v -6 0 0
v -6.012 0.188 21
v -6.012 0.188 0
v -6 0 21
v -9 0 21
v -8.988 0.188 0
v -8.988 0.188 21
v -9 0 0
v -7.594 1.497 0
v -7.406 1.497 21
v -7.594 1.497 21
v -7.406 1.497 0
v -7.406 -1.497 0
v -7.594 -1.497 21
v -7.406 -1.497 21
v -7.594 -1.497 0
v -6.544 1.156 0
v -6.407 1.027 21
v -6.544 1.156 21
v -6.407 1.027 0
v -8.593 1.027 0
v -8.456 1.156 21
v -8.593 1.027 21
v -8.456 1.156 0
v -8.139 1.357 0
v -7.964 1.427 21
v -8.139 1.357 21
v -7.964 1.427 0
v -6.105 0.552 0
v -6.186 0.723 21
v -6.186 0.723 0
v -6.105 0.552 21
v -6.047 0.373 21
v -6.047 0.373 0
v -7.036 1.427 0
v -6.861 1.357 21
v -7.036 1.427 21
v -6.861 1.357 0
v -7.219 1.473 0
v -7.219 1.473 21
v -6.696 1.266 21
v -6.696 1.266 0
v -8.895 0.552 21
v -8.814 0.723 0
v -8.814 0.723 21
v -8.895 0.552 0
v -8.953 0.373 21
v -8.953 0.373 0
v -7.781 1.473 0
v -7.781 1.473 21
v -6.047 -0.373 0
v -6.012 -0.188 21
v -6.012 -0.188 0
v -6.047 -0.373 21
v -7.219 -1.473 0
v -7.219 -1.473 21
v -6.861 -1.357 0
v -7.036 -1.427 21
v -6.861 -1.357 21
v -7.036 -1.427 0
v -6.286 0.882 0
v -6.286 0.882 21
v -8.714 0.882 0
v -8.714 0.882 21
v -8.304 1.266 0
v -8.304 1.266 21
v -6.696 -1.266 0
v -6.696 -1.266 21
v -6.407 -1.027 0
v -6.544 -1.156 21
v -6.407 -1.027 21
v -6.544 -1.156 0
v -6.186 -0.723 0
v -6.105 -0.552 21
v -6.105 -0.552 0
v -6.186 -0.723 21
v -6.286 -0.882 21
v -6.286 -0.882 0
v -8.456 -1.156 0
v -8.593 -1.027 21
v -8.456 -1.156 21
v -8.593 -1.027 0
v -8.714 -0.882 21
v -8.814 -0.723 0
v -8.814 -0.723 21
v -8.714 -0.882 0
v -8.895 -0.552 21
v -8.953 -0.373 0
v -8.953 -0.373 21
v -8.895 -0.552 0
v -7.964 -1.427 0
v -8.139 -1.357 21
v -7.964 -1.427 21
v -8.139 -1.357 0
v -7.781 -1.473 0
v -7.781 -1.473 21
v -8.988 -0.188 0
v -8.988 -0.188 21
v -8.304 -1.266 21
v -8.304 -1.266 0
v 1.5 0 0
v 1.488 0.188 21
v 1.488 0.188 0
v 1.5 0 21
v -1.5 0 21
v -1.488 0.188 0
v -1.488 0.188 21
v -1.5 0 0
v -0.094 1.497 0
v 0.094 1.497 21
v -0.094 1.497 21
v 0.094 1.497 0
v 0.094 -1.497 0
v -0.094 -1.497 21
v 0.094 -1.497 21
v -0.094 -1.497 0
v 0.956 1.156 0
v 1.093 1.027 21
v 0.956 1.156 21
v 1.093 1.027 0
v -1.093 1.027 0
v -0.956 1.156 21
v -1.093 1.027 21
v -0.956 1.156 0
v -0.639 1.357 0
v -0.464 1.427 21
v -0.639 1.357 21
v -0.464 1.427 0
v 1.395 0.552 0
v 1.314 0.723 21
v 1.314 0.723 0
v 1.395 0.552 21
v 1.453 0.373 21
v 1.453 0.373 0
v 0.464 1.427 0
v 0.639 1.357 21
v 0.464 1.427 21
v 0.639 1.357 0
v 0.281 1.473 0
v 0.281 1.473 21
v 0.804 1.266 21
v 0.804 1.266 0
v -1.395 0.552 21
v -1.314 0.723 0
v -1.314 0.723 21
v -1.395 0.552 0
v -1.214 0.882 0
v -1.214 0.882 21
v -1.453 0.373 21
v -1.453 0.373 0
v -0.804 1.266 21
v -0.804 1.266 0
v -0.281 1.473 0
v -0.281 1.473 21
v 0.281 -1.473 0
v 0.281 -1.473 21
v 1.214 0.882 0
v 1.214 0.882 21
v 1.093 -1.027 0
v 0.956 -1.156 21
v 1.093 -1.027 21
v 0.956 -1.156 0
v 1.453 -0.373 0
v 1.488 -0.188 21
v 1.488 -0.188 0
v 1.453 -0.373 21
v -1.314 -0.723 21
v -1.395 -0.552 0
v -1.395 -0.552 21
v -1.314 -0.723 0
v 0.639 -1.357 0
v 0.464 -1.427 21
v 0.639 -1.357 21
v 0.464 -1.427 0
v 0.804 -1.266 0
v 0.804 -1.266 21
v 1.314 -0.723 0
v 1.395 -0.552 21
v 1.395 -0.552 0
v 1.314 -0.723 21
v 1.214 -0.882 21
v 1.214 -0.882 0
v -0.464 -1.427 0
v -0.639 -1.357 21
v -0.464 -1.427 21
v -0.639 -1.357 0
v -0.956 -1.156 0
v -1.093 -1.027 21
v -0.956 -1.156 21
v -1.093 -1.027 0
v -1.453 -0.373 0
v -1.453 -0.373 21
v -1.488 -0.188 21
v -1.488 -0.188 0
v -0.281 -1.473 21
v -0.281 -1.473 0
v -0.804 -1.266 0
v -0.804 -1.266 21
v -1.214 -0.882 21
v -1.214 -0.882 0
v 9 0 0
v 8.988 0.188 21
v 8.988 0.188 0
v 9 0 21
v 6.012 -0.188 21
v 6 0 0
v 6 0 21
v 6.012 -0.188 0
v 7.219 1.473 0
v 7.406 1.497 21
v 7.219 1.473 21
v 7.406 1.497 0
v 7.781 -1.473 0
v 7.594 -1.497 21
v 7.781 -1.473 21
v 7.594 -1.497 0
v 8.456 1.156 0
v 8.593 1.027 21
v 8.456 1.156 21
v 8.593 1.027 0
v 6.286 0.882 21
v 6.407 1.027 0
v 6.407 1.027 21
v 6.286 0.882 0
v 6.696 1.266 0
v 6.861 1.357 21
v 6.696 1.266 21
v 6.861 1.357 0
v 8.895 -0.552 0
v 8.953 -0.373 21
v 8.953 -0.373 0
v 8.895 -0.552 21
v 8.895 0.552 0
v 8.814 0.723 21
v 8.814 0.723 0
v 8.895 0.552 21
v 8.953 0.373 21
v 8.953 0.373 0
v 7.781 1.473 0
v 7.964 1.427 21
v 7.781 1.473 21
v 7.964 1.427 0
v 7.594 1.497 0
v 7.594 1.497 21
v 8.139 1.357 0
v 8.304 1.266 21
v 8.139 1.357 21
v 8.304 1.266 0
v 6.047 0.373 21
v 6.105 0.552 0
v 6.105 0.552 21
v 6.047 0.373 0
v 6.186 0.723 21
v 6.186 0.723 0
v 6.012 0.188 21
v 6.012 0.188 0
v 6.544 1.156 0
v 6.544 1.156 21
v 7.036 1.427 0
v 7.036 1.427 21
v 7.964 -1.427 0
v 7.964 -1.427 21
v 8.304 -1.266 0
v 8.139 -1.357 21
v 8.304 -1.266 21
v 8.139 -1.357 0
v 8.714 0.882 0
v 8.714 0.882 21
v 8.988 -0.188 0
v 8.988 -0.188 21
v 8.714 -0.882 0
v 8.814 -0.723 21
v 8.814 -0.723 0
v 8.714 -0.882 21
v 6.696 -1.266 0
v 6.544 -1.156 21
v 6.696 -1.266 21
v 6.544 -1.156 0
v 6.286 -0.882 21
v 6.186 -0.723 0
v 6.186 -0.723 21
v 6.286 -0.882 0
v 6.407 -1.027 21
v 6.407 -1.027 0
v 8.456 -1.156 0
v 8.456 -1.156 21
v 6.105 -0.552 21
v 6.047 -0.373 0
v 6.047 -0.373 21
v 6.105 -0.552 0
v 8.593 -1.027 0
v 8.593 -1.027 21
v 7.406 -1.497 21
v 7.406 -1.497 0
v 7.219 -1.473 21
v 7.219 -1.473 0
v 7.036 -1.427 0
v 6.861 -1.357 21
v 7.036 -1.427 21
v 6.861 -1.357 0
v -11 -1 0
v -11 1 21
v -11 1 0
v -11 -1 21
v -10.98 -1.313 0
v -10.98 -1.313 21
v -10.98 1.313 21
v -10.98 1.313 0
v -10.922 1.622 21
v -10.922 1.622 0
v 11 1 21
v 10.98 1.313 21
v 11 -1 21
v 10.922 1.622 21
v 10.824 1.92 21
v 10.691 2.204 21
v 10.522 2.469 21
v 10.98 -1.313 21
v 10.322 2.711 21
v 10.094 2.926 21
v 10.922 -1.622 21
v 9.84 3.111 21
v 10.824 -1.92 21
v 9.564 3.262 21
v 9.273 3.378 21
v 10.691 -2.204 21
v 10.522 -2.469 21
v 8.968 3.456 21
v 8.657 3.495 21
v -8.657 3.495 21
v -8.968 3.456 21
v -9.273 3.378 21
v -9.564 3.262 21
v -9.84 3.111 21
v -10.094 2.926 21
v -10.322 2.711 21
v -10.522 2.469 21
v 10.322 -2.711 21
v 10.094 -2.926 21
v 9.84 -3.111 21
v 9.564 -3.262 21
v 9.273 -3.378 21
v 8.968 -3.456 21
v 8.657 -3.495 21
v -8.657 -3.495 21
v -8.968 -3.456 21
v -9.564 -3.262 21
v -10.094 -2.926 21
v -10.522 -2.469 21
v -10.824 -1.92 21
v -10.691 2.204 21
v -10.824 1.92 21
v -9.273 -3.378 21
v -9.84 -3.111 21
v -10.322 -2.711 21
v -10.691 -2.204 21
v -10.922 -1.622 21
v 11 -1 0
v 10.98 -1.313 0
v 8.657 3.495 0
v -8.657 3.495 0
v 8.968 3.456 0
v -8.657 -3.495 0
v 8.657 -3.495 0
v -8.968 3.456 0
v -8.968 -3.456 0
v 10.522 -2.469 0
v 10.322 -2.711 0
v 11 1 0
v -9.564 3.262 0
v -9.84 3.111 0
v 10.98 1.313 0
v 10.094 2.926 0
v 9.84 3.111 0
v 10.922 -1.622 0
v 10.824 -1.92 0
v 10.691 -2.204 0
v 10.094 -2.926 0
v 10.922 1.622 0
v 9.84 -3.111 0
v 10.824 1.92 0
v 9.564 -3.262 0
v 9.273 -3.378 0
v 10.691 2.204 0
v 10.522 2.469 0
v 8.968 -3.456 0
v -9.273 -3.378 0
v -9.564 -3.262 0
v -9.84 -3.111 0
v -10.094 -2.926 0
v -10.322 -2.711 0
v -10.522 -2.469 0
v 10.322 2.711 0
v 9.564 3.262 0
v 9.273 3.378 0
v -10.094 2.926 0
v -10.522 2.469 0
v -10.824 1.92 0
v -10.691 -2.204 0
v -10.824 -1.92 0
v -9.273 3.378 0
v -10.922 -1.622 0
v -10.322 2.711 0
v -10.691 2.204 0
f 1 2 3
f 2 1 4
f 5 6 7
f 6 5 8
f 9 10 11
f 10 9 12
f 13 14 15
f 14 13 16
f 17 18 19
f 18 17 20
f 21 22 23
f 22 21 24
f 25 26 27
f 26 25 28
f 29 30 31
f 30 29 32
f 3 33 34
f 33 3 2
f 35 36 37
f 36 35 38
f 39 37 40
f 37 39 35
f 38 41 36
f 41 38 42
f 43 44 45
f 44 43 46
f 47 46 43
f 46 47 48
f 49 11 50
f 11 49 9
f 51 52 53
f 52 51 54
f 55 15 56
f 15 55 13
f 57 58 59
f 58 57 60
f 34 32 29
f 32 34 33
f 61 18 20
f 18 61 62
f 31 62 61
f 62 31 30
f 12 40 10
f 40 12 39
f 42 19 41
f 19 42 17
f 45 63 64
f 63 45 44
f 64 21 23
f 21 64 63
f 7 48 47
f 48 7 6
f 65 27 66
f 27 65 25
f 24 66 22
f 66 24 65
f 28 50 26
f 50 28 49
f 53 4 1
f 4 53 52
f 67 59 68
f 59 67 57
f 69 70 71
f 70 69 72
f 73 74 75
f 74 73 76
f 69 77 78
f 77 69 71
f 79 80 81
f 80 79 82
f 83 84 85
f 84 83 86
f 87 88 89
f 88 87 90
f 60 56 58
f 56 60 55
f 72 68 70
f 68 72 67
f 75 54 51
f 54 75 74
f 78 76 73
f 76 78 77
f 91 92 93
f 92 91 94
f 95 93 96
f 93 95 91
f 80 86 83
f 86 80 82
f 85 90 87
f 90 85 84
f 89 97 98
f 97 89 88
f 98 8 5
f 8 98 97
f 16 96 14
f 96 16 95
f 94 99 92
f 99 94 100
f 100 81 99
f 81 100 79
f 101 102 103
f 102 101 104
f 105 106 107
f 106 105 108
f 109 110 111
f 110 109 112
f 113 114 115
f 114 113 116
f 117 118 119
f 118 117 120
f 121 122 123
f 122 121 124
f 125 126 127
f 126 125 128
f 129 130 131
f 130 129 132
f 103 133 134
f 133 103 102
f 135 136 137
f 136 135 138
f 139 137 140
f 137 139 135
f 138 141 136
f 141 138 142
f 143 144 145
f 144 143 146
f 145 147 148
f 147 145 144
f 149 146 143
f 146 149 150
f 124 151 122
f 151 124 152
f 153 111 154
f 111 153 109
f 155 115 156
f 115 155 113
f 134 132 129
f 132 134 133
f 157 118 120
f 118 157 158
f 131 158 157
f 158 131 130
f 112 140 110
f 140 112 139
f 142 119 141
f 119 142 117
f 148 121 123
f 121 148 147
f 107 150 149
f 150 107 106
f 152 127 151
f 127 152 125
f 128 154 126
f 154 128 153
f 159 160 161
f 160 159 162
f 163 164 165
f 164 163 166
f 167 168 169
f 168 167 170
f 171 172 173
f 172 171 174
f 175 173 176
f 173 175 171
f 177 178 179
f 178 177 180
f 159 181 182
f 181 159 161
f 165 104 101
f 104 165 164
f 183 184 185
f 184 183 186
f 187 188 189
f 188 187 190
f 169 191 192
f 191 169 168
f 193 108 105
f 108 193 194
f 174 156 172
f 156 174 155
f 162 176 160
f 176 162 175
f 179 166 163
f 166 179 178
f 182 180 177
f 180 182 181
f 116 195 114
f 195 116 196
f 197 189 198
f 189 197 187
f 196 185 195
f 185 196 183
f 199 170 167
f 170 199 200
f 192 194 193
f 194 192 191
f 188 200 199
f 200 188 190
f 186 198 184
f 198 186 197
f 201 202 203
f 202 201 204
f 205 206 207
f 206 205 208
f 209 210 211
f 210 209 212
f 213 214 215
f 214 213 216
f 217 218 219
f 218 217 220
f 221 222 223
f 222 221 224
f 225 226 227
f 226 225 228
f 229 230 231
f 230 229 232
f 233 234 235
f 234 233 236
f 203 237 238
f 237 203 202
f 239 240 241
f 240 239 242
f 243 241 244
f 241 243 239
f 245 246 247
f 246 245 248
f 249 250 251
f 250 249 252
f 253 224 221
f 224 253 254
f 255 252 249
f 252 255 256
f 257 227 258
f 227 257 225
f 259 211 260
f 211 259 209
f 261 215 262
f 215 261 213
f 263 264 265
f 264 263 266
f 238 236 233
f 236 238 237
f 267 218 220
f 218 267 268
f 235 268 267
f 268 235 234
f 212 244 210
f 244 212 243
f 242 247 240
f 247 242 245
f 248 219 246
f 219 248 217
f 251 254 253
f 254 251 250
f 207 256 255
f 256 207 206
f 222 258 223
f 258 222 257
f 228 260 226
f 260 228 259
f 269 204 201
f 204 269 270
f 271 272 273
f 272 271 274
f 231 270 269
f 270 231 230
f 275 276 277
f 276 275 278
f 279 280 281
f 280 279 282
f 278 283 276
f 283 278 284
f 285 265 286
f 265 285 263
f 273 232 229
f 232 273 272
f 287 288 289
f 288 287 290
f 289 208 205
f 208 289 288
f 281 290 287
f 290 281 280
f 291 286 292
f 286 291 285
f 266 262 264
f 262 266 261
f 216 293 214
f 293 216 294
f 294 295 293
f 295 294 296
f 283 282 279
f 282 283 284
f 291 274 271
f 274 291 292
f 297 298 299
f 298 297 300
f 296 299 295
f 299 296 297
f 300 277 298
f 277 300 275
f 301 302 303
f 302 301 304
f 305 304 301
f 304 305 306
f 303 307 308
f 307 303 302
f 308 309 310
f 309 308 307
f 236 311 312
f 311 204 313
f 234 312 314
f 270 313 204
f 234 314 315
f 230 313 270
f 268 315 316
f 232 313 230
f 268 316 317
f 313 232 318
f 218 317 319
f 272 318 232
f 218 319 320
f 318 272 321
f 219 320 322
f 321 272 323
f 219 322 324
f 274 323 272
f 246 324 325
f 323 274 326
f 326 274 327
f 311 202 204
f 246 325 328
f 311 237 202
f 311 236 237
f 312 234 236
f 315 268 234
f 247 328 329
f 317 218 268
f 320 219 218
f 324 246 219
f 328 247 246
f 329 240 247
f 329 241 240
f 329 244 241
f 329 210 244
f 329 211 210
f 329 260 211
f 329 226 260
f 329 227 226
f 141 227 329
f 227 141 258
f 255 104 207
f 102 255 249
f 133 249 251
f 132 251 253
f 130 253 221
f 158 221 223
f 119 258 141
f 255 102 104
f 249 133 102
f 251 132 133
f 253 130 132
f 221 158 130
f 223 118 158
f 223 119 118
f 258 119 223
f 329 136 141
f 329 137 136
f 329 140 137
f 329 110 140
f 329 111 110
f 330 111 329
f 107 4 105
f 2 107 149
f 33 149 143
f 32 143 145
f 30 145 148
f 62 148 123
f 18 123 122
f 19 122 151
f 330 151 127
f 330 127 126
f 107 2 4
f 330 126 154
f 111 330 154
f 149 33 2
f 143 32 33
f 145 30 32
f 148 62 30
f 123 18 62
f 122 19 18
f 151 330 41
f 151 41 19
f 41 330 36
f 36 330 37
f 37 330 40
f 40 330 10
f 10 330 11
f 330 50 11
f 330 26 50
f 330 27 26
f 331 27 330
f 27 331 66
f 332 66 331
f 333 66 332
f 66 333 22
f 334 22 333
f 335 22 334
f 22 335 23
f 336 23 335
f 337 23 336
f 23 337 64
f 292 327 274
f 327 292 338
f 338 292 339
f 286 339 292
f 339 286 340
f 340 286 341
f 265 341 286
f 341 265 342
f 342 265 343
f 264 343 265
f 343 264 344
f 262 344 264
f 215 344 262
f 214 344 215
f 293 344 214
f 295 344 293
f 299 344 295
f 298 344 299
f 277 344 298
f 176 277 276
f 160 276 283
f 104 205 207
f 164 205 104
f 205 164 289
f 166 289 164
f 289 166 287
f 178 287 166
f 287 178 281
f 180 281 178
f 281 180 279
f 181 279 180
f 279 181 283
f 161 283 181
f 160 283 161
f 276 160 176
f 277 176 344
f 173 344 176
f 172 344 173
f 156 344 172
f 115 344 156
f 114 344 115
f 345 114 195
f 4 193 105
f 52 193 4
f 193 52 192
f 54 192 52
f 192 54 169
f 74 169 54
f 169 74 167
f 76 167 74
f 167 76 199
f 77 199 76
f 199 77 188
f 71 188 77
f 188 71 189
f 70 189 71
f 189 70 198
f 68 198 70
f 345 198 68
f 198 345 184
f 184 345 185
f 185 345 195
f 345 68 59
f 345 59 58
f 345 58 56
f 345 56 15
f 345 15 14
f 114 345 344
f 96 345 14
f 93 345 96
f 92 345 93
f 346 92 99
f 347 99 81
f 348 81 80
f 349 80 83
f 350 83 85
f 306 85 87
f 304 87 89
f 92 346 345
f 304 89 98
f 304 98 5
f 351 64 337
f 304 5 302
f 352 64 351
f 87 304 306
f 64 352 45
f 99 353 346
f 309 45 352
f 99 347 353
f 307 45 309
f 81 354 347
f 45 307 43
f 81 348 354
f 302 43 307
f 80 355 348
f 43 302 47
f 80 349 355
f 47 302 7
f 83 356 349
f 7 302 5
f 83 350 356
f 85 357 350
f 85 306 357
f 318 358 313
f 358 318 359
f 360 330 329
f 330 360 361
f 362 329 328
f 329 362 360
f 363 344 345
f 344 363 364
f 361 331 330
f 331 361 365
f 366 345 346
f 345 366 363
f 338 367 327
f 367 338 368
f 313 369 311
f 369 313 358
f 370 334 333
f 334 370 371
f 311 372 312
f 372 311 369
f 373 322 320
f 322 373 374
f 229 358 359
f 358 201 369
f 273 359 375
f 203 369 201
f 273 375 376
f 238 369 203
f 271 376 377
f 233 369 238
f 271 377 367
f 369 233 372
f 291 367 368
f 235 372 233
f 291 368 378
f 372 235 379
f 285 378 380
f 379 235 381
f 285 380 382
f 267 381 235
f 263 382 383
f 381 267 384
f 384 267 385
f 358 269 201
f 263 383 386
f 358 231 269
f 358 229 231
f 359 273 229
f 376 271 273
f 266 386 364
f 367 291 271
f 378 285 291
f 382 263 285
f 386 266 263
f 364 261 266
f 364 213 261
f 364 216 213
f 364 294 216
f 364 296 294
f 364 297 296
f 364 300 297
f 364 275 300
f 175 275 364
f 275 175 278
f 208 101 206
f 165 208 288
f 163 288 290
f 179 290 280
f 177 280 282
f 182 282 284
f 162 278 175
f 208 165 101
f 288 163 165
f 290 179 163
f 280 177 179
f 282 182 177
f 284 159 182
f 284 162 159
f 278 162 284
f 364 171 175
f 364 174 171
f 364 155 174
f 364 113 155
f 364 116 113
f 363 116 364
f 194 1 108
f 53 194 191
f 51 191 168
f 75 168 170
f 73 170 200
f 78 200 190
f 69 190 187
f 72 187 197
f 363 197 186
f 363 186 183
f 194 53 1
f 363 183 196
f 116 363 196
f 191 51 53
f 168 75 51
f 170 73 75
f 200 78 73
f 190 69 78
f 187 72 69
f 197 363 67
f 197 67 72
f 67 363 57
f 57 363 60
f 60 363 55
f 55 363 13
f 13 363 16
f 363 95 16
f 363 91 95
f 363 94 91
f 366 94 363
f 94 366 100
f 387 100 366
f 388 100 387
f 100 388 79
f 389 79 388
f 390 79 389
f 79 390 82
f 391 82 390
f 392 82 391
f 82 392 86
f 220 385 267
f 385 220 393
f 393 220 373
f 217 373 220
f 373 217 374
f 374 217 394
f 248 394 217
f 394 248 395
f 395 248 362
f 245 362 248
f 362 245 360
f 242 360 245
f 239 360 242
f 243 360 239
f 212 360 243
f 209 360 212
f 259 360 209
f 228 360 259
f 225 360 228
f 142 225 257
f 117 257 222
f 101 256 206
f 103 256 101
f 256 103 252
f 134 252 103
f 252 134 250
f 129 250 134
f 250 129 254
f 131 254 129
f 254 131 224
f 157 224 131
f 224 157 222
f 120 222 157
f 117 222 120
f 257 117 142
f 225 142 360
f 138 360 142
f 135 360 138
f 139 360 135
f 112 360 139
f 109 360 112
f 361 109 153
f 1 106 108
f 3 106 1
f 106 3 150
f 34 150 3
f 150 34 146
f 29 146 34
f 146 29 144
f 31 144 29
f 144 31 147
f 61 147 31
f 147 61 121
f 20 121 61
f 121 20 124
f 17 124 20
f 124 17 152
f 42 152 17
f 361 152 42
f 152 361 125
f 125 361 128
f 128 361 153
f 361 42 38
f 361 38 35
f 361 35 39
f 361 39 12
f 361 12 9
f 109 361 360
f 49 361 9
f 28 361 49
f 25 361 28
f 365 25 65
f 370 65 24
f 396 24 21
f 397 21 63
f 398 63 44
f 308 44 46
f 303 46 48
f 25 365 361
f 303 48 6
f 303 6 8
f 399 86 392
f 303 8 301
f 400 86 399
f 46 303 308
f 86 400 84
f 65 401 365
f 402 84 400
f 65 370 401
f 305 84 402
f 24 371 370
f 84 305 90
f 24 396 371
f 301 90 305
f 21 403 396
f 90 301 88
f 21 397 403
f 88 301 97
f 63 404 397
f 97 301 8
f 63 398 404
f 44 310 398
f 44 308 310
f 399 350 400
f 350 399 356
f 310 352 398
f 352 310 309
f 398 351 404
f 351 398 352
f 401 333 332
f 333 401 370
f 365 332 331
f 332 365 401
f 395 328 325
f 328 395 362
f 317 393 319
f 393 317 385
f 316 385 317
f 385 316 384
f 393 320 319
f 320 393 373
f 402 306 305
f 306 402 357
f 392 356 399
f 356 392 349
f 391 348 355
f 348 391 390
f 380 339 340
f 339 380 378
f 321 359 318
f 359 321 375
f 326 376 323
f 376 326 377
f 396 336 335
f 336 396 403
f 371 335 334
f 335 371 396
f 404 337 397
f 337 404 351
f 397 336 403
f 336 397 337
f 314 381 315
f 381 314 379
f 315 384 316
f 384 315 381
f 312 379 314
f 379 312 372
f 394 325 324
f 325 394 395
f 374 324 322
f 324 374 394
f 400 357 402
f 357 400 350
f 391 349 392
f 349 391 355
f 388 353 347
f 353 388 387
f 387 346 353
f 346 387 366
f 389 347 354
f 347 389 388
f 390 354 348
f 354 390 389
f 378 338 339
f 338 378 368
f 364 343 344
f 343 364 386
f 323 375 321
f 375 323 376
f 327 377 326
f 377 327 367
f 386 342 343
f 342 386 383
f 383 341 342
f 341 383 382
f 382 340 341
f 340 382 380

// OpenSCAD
$fn = 50;


difference() {
	union() {
		translate(v = [0, 0, 0]) {
			rotate(a = [0, 0, 0]) {
				hull() {
					translate(v = [-8.5000000000, 1.0000000000, 0]) {
						rotate(a = [0, 0, 0]) {
							translate(v = [0, 0, 0]) {
								rotate(a = [0, 0, 0]) {
									cylinder(h = 21, r = 2.5000000000);
								}
							}
						}
					}
					translate(v = [8.5000000000, 1.0000000000, 0]) {
						rotate(a = [0, 0, 0]) {
							translate(v = [0, 0, 0]) {
								rotate(a = [0, 0, 0]) {
									cylinder(h = 21, r = 2.5000000000);
								}
							}
						}
					}
					translate(v = [-8.5000000000, -1.0000000000, 0]) {
						rotate(a = [0, 0, 0]) {
							translate(v = [0, 0, 0]) {
								rotate(a = [0, 0, 0]) {
									cylinder(h = 21, r = 2.5000000000);
								}
							}
						}
					}
					translate(v = [8.5000000000, -1.0000000000, 0]) {
						rotate(a = [0, 0, 0]) {
							translate(v = [0, 0, 0]) {
								rotate(a = [0, 0, 0]) {
									cylinder(h = 21, r = 2.5000000000);
								}
							}
						}
					}
				}
			}
		}
	}
	union() {
		translate(v = [-7.5000000000, 0.0000000000, 0]) {
			rotate(a = [0, 0, 0]) {
				translate(v = [0, 0, -50]) {
					rotate(a = [0, 0, 0]) {
						cylinder(h = 100, r = 1.5000000000);
					}
				}
			}
		}
		translate(v = [0.0000000000, 0.0000000000, 0]) {
			rotate(a = [0, 0, 0]) {
				translate(v = [0, 0, -50]) {
					rotate(a = [0, 0, 0]) {
						cylinder(h = 100, r = 1.5000000000);
					}
				}
			}
		}
		translate(v = [7.5000000000, 0.0000000000, 0]) {
			rotate(a = [0, 0, 0]) {
				translate(v = [0, 0, -50]) {
					rotate(a = [0, 0, 0]) {
						cylinder(h = 100, r = 1.5000000000);
					}
				}
			}
		}
	}
}
